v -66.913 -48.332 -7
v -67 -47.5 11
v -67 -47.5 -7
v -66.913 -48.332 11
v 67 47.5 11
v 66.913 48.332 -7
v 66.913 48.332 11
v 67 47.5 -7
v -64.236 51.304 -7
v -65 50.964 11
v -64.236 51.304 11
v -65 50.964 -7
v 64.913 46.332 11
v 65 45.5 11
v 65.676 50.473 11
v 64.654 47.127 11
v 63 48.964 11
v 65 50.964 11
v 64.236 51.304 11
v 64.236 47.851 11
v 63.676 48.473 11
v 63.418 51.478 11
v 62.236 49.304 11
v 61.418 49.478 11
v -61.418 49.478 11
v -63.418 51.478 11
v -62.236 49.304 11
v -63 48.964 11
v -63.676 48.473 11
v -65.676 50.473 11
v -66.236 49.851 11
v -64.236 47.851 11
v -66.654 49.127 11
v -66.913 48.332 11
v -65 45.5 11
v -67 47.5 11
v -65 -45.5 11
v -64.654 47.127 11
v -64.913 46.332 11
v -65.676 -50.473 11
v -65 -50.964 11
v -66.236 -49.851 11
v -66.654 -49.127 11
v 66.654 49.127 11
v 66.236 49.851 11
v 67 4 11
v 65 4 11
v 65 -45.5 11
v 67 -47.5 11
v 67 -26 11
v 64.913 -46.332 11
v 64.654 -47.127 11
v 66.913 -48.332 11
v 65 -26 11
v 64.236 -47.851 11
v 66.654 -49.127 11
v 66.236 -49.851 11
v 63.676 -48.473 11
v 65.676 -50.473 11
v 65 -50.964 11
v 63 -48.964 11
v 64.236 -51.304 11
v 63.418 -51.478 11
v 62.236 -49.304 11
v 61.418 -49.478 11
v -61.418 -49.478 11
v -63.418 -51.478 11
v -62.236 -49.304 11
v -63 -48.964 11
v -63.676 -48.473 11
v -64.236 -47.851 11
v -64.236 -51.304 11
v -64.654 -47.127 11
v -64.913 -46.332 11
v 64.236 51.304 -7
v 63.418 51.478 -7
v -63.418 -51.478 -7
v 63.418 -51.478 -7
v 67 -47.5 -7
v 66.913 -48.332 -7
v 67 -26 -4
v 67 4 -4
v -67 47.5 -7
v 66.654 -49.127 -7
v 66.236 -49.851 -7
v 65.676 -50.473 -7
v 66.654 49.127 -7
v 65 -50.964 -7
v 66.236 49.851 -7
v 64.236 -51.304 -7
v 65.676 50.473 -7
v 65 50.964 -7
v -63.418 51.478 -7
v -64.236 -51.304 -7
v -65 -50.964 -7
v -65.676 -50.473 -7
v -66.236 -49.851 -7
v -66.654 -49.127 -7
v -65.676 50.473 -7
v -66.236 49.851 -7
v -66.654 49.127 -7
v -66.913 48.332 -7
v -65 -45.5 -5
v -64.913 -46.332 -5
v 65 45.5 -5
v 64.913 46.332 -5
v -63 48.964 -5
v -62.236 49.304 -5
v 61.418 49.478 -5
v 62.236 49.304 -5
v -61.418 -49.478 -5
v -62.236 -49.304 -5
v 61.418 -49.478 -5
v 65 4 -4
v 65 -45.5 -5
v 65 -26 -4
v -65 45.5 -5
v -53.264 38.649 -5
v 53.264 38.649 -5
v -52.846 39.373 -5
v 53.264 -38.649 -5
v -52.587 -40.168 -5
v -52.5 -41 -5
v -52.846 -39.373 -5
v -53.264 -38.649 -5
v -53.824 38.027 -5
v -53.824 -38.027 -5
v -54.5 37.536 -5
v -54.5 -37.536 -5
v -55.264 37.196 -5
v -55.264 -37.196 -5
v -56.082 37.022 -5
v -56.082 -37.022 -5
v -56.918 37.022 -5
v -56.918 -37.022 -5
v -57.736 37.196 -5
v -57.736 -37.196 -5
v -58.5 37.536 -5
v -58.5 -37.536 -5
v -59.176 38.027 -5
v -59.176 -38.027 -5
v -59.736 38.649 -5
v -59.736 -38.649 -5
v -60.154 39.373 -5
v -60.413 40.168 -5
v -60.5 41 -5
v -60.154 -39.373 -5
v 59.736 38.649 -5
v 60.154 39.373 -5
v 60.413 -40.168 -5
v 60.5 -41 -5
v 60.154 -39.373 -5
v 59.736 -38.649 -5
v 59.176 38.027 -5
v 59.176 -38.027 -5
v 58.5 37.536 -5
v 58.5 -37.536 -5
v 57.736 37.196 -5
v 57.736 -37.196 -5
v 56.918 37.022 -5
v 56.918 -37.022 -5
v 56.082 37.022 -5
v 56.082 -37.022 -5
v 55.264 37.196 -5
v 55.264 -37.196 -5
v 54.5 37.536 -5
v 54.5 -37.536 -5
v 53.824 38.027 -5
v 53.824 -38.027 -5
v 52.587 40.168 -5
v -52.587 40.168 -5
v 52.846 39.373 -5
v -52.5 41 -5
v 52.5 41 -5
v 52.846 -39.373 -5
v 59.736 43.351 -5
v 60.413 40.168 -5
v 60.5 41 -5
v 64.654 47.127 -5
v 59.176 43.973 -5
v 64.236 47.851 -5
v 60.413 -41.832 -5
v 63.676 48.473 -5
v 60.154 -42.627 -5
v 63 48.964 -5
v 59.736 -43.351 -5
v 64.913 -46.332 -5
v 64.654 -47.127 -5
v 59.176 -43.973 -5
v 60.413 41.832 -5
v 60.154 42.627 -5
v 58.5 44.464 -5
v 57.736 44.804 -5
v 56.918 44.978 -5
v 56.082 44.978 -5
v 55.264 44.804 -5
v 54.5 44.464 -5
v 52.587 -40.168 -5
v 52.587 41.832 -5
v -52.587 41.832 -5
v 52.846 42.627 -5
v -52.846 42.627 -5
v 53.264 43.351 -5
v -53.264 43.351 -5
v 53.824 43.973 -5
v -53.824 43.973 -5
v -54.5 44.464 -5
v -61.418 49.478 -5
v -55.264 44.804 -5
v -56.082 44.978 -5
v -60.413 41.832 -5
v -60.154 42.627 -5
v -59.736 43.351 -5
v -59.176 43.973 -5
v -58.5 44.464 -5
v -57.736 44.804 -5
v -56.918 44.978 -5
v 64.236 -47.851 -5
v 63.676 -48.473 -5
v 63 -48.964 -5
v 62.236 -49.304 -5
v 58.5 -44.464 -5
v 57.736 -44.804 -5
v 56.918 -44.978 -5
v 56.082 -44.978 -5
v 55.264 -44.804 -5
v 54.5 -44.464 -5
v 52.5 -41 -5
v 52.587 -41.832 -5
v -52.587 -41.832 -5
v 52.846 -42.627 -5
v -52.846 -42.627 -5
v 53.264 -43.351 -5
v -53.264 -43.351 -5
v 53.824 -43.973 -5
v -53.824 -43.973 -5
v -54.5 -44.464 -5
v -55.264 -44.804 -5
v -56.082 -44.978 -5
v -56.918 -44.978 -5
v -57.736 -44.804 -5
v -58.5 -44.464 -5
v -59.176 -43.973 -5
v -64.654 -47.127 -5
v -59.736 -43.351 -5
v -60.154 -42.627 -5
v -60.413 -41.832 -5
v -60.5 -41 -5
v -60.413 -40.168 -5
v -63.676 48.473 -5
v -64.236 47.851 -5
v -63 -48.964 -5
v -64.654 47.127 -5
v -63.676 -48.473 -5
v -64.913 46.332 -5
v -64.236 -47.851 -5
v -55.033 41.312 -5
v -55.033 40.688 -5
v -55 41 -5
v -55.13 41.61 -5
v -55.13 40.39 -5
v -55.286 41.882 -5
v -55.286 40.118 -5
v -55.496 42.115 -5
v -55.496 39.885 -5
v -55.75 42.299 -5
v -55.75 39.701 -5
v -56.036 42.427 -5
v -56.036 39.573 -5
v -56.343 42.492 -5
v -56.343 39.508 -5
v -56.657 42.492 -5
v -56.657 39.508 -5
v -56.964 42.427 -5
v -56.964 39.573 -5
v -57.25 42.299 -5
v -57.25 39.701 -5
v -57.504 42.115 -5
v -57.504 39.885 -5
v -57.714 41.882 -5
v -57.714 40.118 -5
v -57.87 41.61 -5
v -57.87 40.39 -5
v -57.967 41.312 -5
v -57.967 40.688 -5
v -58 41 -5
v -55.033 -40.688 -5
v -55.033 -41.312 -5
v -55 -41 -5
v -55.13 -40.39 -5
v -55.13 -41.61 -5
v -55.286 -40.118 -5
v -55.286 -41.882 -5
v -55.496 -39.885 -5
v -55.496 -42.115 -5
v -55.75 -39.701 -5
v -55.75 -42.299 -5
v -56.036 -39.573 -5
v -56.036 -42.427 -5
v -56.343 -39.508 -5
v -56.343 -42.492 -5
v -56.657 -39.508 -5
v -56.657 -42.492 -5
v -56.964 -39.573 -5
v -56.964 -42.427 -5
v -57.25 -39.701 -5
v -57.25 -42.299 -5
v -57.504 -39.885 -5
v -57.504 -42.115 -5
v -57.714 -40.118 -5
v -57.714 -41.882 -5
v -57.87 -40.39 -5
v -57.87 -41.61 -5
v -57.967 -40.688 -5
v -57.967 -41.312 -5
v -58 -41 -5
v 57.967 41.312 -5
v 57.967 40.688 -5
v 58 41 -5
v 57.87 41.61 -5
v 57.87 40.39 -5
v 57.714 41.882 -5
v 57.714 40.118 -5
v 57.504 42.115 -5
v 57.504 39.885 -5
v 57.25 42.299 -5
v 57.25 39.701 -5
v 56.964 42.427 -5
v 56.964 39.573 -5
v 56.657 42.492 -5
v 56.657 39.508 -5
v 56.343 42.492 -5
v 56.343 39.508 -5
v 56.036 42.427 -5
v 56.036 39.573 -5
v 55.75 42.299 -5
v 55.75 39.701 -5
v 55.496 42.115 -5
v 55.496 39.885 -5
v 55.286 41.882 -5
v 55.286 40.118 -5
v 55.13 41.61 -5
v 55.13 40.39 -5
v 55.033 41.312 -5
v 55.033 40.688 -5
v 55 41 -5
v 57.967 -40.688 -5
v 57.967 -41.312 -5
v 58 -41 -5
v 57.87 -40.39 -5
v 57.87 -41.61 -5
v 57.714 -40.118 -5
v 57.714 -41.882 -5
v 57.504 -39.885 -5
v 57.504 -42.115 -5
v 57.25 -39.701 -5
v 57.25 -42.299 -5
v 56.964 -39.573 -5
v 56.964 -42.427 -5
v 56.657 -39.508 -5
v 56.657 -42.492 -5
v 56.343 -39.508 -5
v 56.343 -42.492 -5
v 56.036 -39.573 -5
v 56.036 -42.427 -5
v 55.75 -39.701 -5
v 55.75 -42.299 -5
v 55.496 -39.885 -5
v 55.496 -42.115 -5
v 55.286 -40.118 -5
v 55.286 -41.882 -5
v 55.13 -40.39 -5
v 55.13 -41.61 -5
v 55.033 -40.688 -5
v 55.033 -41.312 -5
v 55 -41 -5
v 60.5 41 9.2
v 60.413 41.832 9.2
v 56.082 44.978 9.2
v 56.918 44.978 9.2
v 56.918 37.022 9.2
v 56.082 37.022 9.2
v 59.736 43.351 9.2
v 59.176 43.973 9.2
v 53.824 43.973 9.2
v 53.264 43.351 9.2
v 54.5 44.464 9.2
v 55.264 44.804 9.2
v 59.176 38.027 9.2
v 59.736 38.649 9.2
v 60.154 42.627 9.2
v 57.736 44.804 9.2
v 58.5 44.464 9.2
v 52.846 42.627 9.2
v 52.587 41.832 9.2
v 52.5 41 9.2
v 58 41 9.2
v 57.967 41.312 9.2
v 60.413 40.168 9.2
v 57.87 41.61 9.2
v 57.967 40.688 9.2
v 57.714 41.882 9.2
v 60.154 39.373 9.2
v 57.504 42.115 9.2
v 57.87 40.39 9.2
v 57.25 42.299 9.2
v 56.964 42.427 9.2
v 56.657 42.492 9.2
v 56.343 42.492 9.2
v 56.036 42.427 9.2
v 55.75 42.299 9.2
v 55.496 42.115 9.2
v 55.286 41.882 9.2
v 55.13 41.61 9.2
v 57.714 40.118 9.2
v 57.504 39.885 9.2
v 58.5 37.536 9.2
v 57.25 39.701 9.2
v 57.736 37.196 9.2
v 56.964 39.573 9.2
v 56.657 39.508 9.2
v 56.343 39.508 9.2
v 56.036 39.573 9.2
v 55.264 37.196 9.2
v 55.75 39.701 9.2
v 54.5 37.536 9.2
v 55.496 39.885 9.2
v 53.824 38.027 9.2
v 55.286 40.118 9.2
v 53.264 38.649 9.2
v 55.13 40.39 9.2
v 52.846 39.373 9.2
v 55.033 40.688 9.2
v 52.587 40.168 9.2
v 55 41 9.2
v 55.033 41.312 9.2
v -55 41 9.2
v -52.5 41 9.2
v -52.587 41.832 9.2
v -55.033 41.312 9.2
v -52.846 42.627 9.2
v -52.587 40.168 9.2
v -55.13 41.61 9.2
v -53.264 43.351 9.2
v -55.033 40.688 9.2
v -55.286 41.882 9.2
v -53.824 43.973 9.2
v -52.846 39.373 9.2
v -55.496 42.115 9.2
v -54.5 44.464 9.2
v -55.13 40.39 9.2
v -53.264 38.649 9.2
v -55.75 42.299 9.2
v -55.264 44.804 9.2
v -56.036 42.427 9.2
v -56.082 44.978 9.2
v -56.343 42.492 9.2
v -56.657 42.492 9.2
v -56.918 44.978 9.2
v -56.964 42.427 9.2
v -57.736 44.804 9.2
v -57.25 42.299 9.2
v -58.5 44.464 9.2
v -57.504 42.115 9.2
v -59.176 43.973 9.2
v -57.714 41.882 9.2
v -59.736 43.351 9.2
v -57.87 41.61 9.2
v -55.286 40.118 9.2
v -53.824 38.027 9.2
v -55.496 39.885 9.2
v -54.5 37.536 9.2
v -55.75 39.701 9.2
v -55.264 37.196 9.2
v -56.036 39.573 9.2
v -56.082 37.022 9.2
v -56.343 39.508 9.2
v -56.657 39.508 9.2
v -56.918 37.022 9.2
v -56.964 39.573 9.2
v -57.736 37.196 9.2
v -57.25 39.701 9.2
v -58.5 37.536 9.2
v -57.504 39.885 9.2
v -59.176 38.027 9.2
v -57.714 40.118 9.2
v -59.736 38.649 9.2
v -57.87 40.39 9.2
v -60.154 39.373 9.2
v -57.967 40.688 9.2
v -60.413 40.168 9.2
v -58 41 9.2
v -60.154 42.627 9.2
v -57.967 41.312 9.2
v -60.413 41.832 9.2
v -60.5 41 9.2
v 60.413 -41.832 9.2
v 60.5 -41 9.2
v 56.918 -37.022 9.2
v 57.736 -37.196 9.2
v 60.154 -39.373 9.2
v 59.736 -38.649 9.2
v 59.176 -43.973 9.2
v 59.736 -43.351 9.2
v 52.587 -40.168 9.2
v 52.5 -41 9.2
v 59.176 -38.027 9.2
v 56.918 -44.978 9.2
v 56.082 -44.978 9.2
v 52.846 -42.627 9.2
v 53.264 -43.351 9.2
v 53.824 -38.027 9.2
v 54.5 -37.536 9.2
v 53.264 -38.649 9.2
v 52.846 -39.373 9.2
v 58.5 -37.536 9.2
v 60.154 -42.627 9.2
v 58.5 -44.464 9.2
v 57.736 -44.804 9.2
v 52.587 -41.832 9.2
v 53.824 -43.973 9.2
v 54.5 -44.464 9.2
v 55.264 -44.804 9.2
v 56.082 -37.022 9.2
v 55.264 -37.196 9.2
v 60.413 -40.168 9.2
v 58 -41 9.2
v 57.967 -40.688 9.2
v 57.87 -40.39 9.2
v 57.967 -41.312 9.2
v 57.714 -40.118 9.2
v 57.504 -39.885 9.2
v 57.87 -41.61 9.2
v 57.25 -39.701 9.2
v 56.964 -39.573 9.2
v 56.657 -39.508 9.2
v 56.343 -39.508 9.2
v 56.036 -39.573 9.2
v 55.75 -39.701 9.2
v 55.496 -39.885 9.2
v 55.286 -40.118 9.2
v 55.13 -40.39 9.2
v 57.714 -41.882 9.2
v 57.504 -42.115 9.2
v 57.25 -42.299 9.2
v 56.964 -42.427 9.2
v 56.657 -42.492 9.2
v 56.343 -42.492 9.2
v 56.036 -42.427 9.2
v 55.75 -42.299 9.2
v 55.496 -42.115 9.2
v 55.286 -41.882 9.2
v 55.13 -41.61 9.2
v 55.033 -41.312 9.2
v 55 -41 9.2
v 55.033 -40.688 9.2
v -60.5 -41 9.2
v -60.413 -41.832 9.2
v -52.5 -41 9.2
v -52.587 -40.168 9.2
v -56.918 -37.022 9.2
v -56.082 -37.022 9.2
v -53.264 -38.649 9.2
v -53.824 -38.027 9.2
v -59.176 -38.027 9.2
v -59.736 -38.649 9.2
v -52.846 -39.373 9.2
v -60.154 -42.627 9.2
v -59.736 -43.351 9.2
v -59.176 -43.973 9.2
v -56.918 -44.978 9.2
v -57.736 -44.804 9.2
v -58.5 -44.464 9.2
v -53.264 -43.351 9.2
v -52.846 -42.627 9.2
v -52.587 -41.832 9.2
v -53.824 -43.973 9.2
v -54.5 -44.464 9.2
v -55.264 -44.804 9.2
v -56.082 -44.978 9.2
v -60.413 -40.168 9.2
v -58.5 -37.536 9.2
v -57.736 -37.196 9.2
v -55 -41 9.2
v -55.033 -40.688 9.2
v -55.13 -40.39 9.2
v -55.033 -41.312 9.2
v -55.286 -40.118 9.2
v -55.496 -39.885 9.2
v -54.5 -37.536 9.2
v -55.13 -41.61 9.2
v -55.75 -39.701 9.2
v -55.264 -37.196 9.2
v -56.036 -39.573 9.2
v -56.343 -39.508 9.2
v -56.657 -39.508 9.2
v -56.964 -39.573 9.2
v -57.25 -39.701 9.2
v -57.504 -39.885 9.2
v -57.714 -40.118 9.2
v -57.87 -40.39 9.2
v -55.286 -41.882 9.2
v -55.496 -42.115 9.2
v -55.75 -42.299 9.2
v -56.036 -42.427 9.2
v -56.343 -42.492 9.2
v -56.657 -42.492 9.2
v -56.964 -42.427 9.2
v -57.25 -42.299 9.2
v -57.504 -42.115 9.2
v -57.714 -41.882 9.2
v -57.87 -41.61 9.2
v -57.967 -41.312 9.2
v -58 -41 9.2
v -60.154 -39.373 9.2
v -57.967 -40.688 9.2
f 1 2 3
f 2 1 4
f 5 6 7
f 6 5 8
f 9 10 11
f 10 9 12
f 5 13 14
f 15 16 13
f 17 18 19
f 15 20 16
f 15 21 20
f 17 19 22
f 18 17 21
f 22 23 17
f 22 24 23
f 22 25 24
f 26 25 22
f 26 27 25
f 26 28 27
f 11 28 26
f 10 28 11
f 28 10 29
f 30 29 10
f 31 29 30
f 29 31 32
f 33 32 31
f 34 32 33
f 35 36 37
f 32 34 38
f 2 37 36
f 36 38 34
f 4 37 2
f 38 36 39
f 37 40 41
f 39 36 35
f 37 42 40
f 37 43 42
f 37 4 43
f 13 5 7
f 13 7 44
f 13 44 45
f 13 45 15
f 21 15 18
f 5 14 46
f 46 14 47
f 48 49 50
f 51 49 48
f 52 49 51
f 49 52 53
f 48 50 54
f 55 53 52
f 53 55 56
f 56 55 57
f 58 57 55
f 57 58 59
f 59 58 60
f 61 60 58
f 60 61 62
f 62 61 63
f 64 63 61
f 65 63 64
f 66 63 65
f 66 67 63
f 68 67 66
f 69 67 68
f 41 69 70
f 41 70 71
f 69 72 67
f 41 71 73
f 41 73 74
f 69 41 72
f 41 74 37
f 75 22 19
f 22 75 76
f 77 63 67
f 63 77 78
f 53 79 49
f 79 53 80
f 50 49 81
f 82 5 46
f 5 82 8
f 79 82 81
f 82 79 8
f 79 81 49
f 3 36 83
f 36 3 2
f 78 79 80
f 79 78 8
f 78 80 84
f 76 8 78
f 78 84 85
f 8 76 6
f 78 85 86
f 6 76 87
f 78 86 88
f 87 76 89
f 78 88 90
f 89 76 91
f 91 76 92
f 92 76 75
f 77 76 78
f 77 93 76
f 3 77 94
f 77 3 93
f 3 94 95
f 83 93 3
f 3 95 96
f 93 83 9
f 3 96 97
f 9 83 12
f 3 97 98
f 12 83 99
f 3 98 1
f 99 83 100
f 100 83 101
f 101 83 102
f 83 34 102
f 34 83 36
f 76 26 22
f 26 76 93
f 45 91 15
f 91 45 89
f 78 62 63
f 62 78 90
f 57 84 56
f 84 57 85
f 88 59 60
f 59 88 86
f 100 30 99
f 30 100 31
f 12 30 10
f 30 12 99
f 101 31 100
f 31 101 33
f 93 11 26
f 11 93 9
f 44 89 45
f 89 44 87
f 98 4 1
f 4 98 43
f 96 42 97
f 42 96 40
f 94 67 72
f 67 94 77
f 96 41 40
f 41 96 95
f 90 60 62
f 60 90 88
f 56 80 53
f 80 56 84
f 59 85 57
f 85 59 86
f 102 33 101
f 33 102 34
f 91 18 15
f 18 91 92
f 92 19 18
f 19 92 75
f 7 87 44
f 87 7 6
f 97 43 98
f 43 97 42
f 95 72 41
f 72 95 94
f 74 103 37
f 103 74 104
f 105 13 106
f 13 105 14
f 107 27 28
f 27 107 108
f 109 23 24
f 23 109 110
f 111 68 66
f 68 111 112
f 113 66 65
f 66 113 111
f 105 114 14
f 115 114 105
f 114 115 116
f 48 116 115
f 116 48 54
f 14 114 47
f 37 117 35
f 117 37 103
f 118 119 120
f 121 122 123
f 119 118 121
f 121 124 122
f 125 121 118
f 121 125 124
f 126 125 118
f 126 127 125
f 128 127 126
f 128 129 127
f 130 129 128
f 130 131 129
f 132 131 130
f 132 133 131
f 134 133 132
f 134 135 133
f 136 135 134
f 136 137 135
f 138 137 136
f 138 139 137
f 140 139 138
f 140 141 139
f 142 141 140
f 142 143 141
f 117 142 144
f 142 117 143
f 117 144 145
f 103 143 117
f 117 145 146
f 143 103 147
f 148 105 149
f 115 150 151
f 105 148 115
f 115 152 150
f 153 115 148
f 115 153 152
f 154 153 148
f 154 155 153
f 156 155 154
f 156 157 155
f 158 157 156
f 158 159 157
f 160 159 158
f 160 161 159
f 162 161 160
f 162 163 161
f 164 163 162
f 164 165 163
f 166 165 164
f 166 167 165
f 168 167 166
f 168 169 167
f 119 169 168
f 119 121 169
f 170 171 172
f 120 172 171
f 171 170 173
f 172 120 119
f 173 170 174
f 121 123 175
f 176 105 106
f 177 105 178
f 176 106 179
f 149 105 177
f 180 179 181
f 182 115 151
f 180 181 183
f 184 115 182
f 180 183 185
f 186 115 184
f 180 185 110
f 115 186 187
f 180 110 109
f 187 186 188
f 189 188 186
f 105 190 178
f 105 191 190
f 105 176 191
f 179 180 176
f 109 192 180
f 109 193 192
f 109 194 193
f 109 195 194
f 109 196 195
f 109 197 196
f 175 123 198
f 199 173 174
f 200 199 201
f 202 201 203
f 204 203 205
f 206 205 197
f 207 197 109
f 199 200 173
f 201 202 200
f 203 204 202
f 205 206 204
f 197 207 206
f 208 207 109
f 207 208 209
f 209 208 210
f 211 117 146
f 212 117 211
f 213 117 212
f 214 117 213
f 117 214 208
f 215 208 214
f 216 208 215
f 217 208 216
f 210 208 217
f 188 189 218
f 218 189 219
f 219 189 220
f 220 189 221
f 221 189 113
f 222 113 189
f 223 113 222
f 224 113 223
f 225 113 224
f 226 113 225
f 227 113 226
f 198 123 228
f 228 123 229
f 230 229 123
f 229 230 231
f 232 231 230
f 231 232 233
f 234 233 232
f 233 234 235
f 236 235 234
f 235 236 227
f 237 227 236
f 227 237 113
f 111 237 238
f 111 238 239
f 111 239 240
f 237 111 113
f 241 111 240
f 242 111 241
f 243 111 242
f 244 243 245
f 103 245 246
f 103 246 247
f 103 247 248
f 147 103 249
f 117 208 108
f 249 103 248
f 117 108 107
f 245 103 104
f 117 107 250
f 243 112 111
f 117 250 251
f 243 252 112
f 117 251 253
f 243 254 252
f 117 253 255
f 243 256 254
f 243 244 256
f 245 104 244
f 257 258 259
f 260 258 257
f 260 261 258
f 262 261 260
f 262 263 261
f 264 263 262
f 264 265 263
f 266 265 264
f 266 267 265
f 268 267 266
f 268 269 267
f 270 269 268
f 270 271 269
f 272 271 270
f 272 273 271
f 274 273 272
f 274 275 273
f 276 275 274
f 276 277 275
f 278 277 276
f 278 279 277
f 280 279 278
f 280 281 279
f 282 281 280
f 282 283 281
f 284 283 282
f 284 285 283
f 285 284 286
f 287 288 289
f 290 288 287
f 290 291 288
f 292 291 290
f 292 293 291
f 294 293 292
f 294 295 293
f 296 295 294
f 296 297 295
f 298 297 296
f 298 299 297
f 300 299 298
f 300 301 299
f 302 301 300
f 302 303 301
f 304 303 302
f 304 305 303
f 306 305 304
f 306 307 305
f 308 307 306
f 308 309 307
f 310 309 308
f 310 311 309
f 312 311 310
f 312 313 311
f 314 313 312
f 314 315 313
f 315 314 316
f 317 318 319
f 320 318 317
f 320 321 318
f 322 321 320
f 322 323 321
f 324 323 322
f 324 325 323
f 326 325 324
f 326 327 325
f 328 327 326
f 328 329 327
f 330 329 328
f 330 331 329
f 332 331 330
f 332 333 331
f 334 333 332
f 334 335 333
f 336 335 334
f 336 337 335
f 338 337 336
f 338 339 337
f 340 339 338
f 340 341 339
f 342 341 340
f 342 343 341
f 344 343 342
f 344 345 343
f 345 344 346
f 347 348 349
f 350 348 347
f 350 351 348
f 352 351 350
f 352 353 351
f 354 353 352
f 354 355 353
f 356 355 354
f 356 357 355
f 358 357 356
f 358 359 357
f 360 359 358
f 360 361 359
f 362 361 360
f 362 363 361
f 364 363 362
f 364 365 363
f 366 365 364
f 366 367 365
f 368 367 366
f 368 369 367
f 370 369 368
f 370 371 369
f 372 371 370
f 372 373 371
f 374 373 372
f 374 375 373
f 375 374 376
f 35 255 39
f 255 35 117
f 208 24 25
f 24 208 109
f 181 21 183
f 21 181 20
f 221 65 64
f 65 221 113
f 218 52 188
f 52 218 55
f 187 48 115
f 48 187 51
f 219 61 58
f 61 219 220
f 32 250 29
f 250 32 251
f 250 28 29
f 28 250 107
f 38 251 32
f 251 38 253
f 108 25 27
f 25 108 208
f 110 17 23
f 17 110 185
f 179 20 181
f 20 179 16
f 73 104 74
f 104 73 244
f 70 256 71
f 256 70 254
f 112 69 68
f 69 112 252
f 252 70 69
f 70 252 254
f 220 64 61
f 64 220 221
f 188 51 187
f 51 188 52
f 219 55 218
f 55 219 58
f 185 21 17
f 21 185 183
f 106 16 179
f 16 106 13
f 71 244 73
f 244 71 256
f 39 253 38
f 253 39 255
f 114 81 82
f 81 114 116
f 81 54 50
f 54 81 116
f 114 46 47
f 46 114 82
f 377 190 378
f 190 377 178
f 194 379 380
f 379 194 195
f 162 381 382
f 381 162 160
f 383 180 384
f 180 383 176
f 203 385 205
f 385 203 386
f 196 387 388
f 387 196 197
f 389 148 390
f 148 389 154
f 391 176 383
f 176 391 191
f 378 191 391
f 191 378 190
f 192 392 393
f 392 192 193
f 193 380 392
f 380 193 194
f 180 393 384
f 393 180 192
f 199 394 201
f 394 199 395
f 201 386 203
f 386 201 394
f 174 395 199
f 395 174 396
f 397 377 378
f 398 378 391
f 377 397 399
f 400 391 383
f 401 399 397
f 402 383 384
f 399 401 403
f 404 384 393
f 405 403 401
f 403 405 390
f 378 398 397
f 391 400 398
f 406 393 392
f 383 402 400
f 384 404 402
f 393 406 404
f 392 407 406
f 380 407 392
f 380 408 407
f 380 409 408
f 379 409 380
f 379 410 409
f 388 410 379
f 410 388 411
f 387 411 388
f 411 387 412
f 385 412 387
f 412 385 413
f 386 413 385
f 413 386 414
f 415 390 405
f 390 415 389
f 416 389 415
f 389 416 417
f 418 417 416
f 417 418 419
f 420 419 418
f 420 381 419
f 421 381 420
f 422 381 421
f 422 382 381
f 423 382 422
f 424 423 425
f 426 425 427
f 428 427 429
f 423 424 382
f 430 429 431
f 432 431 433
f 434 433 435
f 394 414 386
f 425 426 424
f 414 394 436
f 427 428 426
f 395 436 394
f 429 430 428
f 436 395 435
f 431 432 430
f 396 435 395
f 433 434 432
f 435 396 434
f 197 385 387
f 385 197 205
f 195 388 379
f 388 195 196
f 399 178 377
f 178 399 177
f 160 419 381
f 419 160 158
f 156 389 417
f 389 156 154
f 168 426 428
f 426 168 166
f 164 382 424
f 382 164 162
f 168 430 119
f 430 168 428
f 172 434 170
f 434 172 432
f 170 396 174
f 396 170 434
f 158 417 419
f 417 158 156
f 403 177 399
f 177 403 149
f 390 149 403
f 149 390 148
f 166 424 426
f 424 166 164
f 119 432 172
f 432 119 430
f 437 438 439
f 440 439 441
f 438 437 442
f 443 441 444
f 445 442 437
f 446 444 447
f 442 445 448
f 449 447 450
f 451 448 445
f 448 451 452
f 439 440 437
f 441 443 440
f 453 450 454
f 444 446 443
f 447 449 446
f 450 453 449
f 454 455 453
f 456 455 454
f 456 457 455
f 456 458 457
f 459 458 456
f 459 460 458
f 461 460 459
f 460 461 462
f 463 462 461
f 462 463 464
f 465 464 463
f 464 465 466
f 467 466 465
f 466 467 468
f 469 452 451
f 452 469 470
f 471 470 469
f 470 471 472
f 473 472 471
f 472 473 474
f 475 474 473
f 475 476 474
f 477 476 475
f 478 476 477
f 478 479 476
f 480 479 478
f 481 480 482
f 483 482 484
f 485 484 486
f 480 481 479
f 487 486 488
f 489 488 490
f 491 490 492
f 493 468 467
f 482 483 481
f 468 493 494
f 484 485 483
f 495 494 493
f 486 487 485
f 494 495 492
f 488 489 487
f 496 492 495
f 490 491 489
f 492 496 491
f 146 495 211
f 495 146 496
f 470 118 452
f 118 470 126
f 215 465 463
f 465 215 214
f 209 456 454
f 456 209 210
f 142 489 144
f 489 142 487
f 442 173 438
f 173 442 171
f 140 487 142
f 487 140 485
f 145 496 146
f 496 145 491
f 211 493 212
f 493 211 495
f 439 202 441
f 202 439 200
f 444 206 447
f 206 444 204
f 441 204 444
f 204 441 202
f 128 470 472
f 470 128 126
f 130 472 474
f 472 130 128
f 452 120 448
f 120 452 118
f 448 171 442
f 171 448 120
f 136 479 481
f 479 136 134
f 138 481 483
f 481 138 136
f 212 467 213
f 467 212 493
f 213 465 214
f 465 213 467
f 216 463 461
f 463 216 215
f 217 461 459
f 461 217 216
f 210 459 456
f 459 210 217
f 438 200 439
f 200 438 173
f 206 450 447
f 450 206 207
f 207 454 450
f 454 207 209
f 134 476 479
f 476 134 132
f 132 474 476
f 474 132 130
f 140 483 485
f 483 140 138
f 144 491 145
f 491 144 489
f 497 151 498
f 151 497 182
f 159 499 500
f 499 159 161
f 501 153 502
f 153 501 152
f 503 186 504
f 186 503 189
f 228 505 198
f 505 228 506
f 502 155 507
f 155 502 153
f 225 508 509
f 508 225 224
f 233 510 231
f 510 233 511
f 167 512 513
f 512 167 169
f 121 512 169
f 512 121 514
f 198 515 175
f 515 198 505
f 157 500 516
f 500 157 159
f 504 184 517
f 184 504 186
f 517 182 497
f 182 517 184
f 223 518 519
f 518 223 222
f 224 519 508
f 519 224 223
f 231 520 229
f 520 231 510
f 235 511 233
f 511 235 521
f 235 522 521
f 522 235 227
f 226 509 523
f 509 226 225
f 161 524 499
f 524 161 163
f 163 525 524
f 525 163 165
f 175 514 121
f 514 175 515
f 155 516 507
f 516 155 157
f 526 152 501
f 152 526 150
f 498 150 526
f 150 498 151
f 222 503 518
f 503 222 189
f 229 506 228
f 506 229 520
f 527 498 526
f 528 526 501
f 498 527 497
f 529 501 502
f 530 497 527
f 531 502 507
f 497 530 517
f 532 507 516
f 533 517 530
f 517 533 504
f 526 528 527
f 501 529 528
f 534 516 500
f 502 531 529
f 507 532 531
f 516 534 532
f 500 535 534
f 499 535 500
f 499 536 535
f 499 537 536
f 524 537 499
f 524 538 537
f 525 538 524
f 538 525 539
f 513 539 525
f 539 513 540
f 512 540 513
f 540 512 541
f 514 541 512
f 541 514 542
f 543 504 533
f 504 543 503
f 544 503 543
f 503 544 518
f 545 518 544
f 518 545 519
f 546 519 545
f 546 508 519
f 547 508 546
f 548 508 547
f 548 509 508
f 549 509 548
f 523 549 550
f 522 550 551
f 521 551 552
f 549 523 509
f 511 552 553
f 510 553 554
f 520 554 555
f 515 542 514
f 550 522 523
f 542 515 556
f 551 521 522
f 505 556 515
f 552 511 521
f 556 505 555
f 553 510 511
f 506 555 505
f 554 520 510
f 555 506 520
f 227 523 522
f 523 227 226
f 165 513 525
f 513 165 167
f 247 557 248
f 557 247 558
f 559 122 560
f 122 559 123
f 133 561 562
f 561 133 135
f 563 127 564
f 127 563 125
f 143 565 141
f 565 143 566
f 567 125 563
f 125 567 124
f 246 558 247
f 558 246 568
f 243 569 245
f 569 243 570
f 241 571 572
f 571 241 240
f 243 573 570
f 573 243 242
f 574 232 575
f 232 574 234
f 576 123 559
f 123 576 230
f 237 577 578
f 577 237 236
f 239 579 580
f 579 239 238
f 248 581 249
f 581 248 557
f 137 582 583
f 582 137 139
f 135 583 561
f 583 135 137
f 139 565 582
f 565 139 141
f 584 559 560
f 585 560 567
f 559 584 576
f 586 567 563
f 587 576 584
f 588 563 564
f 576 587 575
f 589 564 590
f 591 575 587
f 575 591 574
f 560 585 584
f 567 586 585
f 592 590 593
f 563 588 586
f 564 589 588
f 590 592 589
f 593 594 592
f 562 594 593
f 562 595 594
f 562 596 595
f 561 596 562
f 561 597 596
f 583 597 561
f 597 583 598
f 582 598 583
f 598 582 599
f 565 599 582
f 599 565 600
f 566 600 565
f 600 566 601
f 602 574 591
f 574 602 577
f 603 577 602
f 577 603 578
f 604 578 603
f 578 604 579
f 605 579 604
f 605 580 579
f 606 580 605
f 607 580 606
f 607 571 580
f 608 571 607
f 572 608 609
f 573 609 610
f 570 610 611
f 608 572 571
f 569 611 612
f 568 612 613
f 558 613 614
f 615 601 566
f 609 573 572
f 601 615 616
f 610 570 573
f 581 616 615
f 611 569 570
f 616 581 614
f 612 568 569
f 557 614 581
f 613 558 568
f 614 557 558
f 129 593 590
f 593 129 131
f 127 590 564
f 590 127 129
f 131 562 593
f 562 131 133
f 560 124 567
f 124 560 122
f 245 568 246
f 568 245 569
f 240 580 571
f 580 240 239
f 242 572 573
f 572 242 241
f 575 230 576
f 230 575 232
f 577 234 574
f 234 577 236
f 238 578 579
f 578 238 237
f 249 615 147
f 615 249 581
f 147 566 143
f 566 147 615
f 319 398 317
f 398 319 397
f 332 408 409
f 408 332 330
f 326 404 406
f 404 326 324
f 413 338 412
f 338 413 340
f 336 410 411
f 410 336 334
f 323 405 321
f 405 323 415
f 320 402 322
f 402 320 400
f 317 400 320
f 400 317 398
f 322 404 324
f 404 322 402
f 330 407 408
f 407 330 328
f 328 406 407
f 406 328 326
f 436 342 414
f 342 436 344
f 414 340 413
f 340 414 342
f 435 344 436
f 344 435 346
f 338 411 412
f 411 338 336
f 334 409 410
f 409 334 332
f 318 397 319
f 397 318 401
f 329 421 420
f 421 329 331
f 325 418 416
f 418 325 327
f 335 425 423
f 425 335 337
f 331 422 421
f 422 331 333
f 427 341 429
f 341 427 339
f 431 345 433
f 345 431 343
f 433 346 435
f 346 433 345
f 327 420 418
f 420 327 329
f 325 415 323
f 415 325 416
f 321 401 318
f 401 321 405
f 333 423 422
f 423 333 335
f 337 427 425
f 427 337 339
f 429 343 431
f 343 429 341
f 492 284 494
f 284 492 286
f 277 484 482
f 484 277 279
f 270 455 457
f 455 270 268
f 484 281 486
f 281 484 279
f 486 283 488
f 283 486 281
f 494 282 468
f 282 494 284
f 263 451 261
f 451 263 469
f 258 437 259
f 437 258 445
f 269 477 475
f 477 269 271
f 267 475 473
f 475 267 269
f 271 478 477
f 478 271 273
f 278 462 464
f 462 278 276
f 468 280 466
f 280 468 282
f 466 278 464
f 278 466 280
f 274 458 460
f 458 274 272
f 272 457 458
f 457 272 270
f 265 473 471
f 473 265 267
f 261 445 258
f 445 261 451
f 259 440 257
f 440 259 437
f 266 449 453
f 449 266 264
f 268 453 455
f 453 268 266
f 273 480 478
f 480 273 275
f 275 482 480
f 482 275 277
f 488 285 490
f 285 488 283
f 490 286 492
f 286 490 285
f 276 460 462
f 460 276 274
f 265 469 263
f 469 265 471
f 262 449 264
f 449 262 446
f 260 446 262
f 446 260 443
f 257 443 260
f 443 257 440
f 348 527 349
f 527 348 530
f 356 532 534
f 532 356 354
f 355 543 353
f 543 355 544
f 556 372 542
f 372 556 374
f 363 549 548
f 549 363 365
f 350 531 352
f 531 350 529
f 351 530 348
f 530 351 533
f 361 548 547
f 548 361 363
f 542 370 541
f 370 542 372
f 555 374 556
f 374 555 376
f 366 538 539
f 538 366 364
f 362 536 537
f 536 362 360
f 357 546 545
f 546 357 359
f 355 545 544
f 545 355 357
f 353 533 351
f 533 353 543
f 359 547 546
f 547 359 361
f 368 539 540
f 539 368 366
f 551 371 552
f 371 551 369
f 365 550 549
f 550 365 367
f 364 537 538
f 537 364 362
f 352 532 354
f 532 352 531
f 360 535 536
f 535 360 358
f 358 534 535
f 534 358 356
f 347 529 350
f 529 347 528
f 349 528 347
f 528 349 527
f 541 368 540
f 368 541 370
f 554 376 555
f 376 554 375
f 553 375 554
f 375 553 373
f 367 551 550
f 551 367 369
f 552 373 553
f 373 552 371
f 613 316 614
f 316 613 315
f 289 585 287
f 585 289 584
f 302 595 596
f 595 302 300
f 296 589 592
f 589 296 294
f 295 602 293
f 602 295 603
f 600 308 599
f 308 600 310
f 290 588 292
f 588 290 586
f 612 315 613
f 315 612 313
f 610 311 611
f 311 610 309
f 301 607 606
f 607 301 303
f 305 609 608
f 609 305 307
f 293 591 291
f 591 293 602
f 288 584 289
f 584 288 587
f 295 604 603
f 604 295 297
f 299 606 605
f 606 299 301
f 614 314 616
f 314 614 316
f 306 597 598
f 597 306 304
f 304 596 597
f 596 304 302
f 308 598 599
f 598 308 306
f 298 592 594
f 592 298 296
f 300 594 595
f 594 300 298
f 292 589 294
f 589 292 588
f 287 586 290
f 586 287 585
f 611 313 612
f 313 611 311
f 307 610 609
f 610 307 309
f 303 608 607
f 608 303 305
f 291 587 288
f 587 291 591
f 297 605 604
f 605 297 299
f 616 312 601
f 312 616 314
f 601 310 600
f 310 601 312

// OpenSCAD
$fs = .1;

x_pos = (210 - 97)/2;
y_pos = (134 - 52)/2;
b_h = 18; // board height

inner_tolerance =0.5;
wall_r = (97 - 93);
pin_to_wall_inner = wall_r +inner_tolerance;

board_thick = 1.6;
wall_thick = 2;
pin_to_wall_outer = pin_to_wall_inner+wall_thick;


module all() {
      children();
      mirror([1, 0, 0]) children();
      mirror([0, 1, 0]) children();
      mirror([0, 1, 0])
        mirror([1, 0, 0]) children();
}

module setPegs() {
        h = b_h- board_thick - wall_thick;
        module studs() {
        
        all() {
        translate([x_pos, y_pos, +wall_thick]) 
            cylinder(h = h, r = 4, center=true);
        }
    }

    module h() {
        all() {
        translate([x_pos, y_pos, +wall_thick]) 
            cylinder(h = h*3, r = 1.5, center=true);
        }
    }
    
    
    difference() {
        studs();
        h();
    }
}


module outer() {
    x = x_pos+pin_to_wall_outer;
    y = y_pos+pin_to_wall_outer;  

    module p() {
        color("red")
        translate([0, 0, +wall_r/2])
        cylinder(h = b_h, r =  wall_r, center=true);
        color("green") 
        sphere(r = wall_r);
    }

  hull()
  all() {
    translate([x, y, 0]) p();
  }
}

module inner() {
    x = x_pos+pin_to_wall_inner;
    y = y_pos+pin_to_wall_inner;  

    module p() {
        translate([0, 0, +wall_r/2])
        cylinder(h = b_h, r =  wall_r, center=true);
        sphere(r = wall_r);
    }

    color("blue")
    hull()
    all() {
        translate([x, y, 0]) p();
    }
}

module cutout() {
    translate([
        +x_pos+pin_to_wall_outer,
        -y_pos+30,
        +wall_thick*3
    ])
    cube([20, 30, 20], center=true);
}

difference() {
    outer();
    translate([0, 0, wall_thick])
    inner();
    cutout();
    
}

setPegs();
